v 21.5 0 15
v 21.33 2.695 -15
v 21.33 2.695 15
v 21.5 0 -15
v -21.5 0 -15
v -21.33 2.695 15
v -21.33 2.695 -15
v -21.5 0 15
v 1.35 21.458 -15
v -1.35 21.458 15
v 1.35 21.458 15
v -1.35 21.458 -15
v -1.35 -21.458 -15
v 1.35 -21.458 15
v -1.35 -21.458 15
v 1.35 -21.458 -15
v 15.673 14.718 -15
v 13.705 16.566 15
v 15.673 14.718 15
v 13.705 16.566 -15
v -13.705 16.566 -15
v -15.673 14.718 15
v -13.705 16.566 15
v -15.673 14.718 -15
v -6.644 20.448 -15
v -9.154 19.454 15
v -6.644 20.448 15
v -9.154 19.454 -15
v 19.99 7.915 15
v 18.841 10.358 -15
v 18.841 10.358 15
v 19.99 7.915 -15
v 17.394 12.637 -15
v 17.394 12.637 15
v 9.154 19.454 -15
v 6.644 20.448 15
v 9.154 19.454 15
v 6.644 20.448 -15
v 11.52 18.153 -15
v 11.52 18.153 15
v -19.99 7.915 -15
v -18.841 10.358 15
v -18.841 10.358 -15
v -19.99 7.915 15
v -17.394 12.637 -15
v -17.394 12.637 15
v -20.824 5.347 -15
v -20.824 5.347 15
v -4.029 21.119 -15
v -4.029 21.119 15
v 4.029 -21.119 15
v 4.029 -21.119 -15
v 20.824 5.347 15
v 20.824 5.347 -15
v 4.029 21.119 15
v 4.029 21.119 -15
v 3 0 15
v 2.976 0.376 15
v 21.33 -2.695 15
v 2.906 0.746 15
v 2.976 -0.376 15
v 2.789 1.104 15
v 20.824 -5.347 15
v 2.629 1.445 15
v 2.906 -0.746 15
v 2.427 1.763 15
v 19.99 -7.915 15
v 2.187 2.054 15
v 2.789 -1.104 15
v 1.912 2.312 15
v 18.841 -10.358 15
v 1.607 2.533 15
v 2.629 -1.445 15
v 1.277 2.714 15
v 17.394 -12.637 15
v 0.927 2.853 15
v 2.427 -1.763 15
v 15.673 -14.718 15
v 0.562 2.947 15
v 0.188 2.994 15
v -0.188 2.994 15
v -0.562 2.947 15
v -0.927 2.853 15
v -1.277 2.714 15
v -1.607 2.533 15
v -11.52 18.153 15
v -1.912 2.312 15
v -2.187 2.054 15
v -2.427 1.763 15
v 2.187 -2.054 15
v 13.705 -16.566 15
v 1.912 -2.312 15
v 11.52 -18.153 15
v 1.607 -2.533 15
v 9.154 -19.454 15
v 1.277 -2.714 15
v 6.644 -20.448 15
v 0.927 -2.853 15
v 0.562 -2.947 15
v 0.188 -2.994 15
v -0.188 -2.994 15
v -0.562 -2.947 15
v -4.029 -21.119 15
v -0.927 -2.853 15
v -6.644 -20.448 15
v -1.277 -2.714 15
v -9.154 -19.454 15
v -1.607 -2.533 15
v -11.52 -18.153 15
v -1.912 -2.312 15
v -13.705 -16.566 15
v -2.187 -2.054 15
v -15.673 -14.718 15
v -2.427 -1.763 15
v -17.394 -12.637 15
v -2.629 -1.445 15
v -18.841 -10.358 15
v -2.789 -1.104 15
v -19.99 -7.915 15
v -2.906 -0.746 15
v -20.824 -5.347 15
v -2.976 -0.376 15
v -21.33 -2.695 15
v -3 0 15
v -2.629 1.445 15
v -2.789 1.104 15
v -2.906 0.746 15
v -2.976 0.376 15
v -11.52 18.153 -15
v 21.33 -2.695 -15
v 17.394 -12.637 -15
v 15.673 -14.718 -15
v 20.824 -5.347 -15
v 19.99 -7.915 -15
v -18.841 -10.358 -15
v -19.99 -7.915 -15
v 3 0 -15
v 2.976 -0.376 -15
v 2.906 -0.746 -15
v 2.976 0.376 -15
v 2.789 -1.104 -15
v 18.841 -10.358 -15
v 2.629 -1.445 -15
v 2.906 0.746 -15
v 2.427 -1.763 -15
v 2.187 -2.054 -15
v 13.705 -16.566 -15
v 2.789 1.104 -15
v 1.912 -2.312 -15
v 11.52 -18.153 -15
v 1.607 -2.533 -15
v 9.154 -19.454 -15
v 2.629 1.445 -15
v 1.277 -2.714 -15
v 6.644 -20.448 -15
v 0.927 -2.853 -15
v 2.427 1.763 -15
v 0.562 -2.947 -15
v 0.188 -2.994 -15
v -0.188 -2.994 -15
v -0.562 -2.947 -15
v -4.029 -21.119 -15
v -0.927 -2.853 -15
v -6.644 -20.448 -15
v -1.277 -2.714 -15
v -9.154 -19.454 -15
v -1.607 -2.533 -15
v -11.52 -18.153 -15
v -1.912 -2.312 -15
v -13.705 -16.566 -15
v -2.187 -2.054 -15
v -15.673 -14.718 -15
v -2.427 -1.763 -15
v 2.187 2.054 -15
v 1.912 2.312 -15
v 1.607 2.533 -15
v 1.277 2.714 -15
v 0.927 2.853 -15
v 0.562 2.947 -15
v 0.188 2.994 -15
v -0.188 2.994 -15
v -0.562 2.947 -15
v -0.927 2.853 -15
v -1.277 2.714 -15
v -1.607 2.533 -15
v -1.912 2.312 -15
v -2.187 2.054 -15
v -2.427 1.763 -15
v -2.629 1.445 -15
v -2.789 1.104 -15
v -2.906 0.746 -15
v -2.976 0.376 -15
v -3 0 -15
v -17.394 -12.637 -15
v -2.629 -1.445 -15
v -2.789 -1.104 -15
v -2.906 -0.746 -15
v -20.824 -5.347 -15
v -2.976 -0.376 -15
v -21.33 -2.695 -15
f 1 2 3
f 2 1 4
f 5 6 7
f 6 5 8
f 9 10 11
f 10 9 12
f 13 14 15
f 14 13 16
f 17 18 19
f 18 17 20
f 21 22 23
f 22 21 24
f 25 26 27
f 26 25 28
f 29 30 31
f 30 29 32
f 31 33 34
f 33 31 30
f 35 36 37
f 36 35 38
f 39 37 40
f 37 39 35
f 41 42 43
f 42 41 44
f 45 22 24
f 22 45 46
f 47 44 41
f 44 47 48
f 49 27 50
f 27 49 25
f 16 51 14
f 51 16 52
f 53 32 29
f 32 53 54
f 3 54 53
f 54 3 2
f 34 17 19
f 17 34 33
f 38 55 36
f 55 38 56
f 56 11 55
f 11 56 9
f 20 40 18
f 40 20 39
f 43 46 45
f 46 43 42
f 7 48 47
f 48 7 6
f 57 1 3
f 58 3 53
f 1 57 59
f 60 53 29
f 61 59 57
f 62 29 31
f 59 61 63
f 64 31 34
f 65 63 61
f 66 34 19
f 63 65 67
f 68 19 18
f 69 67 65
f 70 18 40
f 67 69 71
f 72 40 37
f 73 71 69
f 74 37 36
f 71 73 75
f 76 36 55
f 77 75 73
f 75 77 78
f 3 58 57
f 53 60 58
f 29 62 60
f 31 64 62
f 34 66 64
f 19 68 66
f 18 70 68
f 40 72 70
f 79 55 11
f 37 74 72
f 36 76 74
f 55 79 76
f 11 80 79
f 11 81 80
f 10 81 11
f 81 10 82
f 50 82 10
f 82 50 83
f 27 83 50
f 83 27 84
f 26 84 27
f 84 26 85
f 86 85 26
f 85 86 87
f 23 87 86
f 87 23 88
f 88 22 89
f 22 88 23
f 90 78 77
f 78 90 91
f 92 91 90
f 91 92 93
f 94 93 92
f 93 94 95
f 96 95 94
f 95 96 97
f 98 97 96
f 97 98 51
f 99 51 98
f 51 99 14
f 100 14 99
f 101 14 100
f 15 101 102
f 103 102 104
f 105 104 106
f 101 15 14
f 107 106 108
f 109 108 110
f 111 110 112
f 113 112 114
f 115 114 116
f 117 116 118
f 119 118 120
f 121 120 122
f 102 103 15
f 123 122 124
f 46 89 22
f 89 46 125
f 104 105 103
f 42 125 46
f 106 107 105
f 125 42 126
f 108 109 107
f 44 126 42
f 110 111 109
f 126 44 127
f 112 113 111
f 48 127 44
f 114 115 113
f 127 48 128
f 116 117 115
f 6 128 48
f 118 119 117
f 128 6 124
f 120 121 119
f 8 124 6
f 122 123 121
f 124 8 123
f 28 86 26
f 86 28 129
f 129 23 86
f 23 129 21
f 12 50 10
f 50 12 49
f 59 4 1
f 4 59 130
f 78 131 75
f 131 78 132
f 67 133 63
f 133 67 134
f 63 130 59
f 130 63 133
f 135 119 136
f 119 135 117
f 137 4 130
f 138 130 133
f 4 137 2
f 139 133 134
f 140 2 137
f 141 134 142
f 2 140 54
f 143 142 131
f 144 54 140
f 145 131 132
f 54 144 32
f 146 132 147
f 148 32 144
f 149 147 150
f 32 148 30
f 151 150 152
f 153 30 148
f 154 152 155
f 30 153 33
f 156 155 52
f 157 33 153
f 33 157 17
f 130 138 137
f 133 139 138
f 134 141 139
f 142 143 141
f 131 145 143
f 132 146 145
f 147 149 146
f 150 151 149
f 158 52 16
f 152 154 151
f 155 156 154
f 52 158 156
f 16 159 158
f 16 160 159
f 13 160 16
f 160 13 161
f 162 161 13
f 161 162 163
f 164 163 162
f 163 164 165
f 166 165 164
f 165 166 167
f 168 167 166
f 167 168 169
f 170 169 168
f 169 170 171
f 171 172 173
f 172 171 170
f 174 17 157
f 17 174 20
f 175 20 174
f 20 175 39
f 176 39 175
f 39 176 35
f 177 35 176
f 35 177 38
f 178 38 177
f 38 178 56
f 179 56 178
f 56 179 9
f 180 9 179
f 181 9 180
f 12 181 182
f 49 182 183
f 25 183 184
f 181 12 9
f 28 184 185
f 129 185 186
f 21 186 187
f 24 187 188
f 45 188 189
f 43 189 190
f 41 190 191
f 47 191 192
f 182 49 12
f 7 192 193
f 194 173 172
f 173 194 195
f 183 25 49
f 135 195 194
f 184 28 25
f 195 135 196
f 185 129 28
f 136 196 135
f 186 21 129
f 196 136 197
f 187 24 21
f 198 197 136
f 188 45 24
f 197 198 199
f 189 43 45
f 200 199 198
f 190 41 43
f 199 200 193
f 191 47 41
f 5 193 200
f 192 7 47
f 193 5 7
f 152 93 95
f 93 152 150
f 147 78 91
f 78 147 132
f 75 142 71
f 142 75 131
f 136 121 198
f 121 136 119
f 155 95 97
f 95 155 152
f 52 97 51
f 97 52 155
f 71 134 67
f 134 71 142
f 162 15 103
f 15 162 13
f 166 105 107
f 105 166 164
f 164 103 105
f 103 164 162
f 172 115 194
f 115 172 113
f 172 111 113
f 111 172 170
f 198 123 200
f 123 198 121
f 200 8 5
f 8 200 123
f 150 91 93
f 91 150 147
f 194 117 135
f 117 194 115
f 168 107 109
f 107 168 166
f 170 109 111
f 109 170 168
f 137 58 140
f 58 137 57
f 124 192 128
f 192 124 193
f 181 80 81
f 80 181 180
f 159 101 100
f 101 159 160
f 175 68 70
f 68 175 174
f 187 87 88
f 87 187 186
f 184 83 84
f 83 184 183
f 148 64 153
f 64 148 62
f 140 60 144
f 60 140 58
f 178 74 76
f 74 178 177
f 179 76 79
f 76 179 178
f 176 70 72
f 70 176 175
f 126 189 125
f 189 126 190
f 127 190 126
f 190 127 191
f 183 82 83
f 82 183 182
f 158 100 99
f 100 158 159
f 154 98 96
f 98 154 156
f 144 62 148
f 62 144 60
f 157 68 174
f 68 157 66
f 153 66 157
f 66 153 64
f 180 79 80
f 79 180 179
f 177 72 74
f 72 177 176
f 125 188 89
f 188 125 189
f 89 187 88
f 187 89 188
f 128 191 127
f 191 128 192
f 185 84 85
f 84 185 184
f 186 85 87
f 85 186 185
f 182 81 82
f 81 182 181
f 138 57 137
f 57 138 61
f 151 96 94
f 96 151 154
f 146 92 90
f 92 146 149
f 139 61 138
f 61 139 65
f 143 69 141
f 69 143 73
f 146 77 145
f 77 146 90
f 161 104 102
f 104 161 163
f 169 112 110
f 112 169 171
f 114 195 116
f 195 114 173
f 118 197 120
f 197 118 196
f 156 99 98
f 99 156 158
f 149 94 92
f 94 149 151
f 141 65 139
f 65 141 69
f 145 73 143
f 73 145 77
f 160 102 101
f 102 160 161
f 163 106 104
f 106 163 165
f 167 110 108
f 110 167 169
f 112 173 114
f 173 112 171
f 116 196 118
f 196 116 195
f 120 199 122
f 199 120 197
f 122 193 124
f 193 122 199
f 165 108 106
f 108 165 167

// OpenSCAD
$fn = 50;


difference() {
	union() {
		translate(v = [0, 0, -15.0000000000]) {
			cylinder(h = 30, r = 21.5000000000);
		}
	}
	union() {
		translate(v = [0, 0, -100.0000000000]) {
			cylinder(h = 200, r = 3);
		}
	}
}
